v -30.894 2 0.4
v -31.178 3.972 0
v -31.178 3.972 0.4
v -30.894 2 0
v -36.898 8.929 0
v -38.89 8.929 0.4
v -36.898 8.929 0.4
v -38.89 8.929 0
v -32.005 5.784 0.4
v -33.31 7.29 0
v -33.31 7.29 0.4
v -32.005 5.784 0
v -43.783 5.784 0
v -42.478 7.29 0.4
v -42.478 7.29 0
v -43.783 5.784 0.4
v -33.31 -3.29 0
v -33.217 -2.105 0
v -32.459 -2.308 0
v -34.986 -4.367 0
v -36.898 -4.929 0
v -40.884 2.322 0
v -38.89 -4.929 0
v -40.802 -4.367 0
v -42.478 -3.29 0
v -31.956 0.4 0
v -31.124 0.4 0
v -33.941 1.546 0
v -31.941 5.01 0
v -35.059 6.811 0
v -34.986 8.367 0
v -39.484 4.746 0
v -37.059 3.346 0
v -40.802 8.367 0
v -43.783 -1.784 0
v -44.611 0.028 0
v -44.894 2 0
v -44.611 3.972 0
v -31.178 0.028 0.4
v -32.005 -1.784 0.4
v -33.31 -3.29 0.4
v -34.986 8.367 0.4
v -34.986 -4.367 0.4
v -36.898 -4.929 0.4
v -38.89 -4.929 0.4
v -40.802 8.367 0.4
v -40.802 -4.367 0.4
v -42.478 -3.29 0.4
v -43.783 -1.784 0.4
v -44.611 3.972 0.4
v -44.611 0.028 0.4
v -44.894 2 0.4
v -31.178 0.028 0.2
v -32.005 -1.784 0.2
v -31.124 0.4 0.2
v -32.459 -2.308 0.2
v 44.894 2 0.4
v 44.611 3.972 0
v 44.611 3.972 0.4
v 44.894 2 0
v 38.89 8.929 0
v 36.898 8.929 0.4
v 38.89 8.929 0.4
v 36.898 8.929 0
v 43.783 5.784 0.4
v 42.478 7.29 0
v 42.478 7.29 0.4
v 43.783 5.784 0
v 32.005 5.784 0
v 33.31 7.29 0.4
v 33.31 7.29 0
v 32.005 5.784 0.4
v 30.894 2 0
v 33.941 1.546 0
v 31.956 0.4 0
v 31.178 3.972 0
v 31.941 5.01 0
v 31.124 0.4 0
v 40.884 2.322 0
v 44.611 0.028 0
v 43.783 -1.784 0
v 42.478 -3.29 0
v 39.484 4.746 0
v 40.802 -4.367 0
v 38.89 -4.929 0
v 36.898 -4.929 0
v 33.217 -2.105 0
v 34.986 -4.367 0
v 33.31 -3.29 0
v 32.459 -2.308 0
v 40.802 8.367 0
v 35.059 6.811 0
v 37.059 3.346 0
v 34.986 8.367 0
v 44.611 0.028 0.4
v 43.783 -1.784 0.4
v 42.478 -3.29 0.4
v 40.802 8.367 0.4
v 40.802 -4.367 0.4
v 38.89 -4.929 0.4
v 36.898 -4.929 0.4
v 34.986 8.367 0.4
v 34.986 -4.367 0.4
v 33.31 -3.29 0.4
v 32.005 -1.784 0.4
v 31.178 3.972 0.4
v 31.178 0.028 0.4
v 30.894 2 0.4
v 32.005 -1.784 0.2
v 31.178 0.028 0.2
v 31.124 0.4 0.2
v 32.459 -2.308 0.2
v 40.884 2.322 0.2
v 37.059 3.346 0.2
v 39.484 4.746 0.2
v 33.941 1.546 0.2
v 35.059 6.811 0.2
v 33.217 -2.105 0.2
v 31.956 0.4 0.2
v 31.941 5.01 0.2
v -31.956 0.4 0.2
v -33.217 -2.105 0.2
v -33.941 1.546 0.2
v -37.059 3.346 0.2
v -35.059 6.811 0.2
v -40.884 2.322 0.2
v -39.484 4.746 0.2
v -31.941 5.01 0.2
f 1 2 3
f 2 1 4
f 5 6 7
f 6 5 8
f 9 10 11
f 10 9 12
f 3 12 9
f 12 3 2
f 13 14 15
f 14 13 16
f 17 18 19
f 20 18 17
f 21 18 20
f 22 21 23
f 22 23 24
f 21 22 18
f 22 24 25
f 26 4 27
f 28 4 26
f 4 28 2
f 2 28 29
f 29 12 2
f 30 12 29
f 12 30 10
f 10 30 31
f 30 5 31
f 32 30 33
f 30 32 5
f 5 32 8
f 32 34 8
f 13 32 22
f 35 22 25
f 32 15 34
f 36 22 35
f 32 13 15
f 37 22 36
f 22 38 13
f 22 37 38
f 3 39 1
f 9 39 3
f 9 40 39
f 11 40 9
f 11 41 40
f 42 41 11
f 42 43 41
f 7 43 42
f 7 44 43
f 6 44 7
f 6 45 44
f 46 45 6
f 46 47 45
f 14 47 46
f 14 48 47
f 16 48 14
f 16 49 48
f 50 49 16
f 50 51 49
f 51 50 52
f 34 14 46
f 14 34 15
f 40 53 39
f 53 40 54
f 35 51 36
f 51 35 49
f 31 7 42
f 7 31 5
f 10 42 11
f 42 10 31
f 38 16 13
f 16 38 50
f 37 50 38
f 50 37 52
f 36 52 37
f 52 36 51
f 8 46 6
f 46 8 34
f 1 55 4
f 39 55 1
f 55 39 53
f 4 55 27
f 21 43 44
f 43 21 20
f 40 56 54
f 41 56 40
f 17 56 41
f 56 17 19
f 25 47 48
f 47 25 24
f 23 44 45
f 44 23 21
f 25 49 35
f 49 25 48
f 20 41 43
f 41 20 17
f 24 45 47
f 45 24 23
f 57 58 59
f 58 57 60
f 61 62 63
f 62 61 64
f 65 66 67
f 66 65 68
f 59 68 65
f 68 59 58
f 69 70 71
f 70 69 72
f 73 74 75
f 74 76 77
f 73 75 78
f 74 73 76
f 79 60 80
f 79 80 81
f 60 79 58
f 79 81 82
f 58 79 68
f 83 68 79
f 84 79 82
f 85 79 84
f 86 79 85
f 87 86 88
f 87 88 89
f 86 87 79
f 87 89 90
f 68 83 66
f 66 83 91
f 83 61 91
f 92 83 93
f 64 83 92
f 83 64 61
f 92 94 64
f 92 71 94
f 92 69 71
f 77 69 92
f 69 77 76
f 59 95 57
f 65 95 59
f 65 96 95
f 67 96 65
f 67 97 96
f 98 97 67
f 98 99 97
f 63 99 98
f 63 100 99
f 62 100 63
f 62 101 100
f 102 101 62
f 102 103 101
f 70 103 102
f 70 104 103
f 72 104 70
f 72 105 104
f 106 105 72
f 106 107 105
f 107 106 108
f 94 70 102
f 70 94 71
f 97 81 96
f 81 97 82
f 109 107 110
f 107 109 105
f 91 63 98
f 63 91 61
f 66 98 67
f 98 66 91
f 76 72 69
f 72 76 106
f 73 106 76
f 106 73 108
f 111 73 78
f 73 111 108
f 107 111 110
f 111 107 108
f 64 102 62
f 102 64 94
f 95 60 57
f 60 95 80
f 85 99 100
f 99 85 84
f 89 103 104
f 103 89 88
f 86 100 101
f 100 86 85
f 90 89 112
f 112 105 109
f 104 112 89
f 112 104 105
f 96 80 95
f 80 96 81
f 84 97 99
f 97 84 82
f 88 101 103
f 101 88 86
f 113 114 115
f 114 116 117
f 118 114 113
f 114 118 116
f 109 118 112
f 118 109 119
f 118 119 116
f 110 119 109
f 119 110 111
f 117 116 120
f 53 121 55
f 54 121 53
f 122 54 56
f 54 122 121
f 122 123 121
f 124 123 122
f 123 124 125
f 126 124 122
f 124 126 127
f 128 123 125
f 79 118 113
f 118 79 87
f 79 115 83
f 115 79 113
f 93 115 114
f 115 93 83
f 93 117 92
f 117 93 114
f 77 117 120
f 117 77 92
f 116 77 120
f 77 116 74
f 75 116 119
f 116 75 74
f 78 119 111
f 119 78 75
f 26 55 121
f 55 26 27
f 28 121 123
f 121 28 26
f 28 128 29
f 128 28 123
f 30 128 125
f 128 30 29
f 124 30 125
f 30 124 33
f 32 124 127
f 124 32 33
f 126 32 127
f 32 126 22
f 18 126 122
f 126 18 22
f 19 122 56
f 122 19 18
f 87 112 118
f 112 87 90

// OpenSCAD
// file: mpmd-tower-shield.scad
/* MONOPRICE MP MINI DELTA, TOWER SHIELD
   keep debris from falling through the towers into the printer's inner
   workings. Patterned after thetrebor's "Monoprice Mini Delta V2 Shield"
   (https://www.thingiverse.com/thing:2622002).

   (see https://github.com/aegean-odyssey/mpmd-tower-shield/)
*/
/* 
Copyright (c) 2020 Aegean Associates, Inc. All rights reserved.

Redistribution and use in source and binary forms, with or without
modification, are permitted (subject to the limitations in the disclaimer
below) provided that the following conditions are met:

     * Redistributions of source code must retain the above copyright notice,
     this list of conditions and the following disclaimer.

     * Redistributions in binary form must reproduce the above copyright
     notice, this list of conditions and the following disclaimer in the
     documentation and/or other materials provided with the distribution.

     * Neither the name of the copyright holder nor the names of its
     contributors may be used to endorse or promote products derived from this
     software without specific prior written permission.

NO EXPRESS OR IMPLIED LICENSES TO ANY PARTY'S PATENT RIGHTS ARE GRANTED BY
THIS LICENSE. THIS SOFTWARE IS PROVIDED BY THE COPYRIGHT HOLDERS AND
CONTRIBUTORS "AS IS" AND ANY EXPRESS OR IMPLIED WARRANTIES, INCLUDING, BUT NOT
LIMITED TO, THE IMPLIED WARRANTIES OF MERCHANTABILITY AND FITNESS FOR A
PARTICULAR PURPOSE ARE DISCLAIMED. IN NO EVENT SHALL THE COPYRIGHT HOLDER OR
CONTRIBUTORS BE LIABLE FOR ANY DIRECT, INDIRECT, INCIDENTAL, SPECIAL,
EXEMPLARY, OR CONSEQUENTIAL DAMAGES (INCLUDING, BUT NOT LIMITED TO,
PROCUREMENT OF SUBSTITUTE GOODS OR SERVICES; LOSS OF USE, DATA, OR PROFITS; OR
BUSINESS INTERRUPTION) HOWEVER CAUSED AND ON ANY THEORY OF LIABILITY, WHETHER
IN CONTRACT, STRICT LIABILITY, OR TORT (INCLUDING NEGLIGENCE OR OTHERWISE)
ARISING IN ANY WAY OUT OF THE USE OF THIS SOFTWARE, EVEN IF ADVISED OF THE
POSSIBILITY OF SUCH DAMAGE.
*/   

/* 3D PRINTING
   layer height:    0.200mm
   supports:        not required
*/

A = 64.4; // center to center distance of tower screws
B = 7.0;  // distance from screw center to channel edge
C = 8.4;  // channel width (really, 2x slot center to inside edge)
D = 2.8;  // channel slot (tab) width
E = 4.0;  // channel slot (tab) depth
F = 16;   // flap height
G = 50;   // flap angle (degrees)
H = 6;    // bar height
t = 2.0;  // bar thickness
j = 1.4;  // flap thickness

module tower_shield() 
{
    xa = (A + B - C*cos(30))/2;
    xb = xa + C*cos(30);
    xc = xb + t*sin(30);
    xd = xa + t*sin(30);
    xe = xa;
    ya = 0;
    yb = ya + C*sin(30);
    yc = yb - t*cos(30);
    yd = ya - t*cos(30);
    ye = ya - t;
    bp = [[+xa,ya],[+xb,yb],[+xc,yc],[+xd,yd],[+xe,ye],
          [-xe,ye],[-xd,yd],[-xc,yc],[-xb,yb],[-xa,ya]];
    linear_extrude(H) polygon(bp);
    module T() { translate([-D/2,0]) cube([D,E,H]); }
    translate([-(xa+xb),(ya+yb)]/2) rotate(-30) T();
    translate([+(xa+xb),(ya+yb)]/2) rotate(+30) T();
    fa = xa - 1;
    fp = [[-fa,0],[-fa*7/8,F],[+fa*7/8,F],[+fa,0]];
    translate([0,j*sin(G)-t,H-j*cos(G)])
        rotate([G,0,0]) linear_extrude(j) polygon(fp);
}

module mouse_ears(layer_height=0.200, first_layer=0.200) 
{
    // loosely tied to the dimensions
    x = (A + B + C*cos(3))/2 - t;
    difference() {
        union() {
            translate([-x,t,0]) cylinder(d=14,h=layer_height+first_layer);
            translate([+x,t,0]) cylinder(d=14,h=layer_height+first_layer);
        }
        translate([0,0,-0.1]) linear_extrude(first_layer+0.1)
            offset(delta=0.4) projection() tower_shield();
    }
}

tower_shield();
// main file
/* MOUSE EARS for MP MINI DELTA TOWER SHIELD */

use <mpmd-tower-shield.scad>
mouse_ears();
